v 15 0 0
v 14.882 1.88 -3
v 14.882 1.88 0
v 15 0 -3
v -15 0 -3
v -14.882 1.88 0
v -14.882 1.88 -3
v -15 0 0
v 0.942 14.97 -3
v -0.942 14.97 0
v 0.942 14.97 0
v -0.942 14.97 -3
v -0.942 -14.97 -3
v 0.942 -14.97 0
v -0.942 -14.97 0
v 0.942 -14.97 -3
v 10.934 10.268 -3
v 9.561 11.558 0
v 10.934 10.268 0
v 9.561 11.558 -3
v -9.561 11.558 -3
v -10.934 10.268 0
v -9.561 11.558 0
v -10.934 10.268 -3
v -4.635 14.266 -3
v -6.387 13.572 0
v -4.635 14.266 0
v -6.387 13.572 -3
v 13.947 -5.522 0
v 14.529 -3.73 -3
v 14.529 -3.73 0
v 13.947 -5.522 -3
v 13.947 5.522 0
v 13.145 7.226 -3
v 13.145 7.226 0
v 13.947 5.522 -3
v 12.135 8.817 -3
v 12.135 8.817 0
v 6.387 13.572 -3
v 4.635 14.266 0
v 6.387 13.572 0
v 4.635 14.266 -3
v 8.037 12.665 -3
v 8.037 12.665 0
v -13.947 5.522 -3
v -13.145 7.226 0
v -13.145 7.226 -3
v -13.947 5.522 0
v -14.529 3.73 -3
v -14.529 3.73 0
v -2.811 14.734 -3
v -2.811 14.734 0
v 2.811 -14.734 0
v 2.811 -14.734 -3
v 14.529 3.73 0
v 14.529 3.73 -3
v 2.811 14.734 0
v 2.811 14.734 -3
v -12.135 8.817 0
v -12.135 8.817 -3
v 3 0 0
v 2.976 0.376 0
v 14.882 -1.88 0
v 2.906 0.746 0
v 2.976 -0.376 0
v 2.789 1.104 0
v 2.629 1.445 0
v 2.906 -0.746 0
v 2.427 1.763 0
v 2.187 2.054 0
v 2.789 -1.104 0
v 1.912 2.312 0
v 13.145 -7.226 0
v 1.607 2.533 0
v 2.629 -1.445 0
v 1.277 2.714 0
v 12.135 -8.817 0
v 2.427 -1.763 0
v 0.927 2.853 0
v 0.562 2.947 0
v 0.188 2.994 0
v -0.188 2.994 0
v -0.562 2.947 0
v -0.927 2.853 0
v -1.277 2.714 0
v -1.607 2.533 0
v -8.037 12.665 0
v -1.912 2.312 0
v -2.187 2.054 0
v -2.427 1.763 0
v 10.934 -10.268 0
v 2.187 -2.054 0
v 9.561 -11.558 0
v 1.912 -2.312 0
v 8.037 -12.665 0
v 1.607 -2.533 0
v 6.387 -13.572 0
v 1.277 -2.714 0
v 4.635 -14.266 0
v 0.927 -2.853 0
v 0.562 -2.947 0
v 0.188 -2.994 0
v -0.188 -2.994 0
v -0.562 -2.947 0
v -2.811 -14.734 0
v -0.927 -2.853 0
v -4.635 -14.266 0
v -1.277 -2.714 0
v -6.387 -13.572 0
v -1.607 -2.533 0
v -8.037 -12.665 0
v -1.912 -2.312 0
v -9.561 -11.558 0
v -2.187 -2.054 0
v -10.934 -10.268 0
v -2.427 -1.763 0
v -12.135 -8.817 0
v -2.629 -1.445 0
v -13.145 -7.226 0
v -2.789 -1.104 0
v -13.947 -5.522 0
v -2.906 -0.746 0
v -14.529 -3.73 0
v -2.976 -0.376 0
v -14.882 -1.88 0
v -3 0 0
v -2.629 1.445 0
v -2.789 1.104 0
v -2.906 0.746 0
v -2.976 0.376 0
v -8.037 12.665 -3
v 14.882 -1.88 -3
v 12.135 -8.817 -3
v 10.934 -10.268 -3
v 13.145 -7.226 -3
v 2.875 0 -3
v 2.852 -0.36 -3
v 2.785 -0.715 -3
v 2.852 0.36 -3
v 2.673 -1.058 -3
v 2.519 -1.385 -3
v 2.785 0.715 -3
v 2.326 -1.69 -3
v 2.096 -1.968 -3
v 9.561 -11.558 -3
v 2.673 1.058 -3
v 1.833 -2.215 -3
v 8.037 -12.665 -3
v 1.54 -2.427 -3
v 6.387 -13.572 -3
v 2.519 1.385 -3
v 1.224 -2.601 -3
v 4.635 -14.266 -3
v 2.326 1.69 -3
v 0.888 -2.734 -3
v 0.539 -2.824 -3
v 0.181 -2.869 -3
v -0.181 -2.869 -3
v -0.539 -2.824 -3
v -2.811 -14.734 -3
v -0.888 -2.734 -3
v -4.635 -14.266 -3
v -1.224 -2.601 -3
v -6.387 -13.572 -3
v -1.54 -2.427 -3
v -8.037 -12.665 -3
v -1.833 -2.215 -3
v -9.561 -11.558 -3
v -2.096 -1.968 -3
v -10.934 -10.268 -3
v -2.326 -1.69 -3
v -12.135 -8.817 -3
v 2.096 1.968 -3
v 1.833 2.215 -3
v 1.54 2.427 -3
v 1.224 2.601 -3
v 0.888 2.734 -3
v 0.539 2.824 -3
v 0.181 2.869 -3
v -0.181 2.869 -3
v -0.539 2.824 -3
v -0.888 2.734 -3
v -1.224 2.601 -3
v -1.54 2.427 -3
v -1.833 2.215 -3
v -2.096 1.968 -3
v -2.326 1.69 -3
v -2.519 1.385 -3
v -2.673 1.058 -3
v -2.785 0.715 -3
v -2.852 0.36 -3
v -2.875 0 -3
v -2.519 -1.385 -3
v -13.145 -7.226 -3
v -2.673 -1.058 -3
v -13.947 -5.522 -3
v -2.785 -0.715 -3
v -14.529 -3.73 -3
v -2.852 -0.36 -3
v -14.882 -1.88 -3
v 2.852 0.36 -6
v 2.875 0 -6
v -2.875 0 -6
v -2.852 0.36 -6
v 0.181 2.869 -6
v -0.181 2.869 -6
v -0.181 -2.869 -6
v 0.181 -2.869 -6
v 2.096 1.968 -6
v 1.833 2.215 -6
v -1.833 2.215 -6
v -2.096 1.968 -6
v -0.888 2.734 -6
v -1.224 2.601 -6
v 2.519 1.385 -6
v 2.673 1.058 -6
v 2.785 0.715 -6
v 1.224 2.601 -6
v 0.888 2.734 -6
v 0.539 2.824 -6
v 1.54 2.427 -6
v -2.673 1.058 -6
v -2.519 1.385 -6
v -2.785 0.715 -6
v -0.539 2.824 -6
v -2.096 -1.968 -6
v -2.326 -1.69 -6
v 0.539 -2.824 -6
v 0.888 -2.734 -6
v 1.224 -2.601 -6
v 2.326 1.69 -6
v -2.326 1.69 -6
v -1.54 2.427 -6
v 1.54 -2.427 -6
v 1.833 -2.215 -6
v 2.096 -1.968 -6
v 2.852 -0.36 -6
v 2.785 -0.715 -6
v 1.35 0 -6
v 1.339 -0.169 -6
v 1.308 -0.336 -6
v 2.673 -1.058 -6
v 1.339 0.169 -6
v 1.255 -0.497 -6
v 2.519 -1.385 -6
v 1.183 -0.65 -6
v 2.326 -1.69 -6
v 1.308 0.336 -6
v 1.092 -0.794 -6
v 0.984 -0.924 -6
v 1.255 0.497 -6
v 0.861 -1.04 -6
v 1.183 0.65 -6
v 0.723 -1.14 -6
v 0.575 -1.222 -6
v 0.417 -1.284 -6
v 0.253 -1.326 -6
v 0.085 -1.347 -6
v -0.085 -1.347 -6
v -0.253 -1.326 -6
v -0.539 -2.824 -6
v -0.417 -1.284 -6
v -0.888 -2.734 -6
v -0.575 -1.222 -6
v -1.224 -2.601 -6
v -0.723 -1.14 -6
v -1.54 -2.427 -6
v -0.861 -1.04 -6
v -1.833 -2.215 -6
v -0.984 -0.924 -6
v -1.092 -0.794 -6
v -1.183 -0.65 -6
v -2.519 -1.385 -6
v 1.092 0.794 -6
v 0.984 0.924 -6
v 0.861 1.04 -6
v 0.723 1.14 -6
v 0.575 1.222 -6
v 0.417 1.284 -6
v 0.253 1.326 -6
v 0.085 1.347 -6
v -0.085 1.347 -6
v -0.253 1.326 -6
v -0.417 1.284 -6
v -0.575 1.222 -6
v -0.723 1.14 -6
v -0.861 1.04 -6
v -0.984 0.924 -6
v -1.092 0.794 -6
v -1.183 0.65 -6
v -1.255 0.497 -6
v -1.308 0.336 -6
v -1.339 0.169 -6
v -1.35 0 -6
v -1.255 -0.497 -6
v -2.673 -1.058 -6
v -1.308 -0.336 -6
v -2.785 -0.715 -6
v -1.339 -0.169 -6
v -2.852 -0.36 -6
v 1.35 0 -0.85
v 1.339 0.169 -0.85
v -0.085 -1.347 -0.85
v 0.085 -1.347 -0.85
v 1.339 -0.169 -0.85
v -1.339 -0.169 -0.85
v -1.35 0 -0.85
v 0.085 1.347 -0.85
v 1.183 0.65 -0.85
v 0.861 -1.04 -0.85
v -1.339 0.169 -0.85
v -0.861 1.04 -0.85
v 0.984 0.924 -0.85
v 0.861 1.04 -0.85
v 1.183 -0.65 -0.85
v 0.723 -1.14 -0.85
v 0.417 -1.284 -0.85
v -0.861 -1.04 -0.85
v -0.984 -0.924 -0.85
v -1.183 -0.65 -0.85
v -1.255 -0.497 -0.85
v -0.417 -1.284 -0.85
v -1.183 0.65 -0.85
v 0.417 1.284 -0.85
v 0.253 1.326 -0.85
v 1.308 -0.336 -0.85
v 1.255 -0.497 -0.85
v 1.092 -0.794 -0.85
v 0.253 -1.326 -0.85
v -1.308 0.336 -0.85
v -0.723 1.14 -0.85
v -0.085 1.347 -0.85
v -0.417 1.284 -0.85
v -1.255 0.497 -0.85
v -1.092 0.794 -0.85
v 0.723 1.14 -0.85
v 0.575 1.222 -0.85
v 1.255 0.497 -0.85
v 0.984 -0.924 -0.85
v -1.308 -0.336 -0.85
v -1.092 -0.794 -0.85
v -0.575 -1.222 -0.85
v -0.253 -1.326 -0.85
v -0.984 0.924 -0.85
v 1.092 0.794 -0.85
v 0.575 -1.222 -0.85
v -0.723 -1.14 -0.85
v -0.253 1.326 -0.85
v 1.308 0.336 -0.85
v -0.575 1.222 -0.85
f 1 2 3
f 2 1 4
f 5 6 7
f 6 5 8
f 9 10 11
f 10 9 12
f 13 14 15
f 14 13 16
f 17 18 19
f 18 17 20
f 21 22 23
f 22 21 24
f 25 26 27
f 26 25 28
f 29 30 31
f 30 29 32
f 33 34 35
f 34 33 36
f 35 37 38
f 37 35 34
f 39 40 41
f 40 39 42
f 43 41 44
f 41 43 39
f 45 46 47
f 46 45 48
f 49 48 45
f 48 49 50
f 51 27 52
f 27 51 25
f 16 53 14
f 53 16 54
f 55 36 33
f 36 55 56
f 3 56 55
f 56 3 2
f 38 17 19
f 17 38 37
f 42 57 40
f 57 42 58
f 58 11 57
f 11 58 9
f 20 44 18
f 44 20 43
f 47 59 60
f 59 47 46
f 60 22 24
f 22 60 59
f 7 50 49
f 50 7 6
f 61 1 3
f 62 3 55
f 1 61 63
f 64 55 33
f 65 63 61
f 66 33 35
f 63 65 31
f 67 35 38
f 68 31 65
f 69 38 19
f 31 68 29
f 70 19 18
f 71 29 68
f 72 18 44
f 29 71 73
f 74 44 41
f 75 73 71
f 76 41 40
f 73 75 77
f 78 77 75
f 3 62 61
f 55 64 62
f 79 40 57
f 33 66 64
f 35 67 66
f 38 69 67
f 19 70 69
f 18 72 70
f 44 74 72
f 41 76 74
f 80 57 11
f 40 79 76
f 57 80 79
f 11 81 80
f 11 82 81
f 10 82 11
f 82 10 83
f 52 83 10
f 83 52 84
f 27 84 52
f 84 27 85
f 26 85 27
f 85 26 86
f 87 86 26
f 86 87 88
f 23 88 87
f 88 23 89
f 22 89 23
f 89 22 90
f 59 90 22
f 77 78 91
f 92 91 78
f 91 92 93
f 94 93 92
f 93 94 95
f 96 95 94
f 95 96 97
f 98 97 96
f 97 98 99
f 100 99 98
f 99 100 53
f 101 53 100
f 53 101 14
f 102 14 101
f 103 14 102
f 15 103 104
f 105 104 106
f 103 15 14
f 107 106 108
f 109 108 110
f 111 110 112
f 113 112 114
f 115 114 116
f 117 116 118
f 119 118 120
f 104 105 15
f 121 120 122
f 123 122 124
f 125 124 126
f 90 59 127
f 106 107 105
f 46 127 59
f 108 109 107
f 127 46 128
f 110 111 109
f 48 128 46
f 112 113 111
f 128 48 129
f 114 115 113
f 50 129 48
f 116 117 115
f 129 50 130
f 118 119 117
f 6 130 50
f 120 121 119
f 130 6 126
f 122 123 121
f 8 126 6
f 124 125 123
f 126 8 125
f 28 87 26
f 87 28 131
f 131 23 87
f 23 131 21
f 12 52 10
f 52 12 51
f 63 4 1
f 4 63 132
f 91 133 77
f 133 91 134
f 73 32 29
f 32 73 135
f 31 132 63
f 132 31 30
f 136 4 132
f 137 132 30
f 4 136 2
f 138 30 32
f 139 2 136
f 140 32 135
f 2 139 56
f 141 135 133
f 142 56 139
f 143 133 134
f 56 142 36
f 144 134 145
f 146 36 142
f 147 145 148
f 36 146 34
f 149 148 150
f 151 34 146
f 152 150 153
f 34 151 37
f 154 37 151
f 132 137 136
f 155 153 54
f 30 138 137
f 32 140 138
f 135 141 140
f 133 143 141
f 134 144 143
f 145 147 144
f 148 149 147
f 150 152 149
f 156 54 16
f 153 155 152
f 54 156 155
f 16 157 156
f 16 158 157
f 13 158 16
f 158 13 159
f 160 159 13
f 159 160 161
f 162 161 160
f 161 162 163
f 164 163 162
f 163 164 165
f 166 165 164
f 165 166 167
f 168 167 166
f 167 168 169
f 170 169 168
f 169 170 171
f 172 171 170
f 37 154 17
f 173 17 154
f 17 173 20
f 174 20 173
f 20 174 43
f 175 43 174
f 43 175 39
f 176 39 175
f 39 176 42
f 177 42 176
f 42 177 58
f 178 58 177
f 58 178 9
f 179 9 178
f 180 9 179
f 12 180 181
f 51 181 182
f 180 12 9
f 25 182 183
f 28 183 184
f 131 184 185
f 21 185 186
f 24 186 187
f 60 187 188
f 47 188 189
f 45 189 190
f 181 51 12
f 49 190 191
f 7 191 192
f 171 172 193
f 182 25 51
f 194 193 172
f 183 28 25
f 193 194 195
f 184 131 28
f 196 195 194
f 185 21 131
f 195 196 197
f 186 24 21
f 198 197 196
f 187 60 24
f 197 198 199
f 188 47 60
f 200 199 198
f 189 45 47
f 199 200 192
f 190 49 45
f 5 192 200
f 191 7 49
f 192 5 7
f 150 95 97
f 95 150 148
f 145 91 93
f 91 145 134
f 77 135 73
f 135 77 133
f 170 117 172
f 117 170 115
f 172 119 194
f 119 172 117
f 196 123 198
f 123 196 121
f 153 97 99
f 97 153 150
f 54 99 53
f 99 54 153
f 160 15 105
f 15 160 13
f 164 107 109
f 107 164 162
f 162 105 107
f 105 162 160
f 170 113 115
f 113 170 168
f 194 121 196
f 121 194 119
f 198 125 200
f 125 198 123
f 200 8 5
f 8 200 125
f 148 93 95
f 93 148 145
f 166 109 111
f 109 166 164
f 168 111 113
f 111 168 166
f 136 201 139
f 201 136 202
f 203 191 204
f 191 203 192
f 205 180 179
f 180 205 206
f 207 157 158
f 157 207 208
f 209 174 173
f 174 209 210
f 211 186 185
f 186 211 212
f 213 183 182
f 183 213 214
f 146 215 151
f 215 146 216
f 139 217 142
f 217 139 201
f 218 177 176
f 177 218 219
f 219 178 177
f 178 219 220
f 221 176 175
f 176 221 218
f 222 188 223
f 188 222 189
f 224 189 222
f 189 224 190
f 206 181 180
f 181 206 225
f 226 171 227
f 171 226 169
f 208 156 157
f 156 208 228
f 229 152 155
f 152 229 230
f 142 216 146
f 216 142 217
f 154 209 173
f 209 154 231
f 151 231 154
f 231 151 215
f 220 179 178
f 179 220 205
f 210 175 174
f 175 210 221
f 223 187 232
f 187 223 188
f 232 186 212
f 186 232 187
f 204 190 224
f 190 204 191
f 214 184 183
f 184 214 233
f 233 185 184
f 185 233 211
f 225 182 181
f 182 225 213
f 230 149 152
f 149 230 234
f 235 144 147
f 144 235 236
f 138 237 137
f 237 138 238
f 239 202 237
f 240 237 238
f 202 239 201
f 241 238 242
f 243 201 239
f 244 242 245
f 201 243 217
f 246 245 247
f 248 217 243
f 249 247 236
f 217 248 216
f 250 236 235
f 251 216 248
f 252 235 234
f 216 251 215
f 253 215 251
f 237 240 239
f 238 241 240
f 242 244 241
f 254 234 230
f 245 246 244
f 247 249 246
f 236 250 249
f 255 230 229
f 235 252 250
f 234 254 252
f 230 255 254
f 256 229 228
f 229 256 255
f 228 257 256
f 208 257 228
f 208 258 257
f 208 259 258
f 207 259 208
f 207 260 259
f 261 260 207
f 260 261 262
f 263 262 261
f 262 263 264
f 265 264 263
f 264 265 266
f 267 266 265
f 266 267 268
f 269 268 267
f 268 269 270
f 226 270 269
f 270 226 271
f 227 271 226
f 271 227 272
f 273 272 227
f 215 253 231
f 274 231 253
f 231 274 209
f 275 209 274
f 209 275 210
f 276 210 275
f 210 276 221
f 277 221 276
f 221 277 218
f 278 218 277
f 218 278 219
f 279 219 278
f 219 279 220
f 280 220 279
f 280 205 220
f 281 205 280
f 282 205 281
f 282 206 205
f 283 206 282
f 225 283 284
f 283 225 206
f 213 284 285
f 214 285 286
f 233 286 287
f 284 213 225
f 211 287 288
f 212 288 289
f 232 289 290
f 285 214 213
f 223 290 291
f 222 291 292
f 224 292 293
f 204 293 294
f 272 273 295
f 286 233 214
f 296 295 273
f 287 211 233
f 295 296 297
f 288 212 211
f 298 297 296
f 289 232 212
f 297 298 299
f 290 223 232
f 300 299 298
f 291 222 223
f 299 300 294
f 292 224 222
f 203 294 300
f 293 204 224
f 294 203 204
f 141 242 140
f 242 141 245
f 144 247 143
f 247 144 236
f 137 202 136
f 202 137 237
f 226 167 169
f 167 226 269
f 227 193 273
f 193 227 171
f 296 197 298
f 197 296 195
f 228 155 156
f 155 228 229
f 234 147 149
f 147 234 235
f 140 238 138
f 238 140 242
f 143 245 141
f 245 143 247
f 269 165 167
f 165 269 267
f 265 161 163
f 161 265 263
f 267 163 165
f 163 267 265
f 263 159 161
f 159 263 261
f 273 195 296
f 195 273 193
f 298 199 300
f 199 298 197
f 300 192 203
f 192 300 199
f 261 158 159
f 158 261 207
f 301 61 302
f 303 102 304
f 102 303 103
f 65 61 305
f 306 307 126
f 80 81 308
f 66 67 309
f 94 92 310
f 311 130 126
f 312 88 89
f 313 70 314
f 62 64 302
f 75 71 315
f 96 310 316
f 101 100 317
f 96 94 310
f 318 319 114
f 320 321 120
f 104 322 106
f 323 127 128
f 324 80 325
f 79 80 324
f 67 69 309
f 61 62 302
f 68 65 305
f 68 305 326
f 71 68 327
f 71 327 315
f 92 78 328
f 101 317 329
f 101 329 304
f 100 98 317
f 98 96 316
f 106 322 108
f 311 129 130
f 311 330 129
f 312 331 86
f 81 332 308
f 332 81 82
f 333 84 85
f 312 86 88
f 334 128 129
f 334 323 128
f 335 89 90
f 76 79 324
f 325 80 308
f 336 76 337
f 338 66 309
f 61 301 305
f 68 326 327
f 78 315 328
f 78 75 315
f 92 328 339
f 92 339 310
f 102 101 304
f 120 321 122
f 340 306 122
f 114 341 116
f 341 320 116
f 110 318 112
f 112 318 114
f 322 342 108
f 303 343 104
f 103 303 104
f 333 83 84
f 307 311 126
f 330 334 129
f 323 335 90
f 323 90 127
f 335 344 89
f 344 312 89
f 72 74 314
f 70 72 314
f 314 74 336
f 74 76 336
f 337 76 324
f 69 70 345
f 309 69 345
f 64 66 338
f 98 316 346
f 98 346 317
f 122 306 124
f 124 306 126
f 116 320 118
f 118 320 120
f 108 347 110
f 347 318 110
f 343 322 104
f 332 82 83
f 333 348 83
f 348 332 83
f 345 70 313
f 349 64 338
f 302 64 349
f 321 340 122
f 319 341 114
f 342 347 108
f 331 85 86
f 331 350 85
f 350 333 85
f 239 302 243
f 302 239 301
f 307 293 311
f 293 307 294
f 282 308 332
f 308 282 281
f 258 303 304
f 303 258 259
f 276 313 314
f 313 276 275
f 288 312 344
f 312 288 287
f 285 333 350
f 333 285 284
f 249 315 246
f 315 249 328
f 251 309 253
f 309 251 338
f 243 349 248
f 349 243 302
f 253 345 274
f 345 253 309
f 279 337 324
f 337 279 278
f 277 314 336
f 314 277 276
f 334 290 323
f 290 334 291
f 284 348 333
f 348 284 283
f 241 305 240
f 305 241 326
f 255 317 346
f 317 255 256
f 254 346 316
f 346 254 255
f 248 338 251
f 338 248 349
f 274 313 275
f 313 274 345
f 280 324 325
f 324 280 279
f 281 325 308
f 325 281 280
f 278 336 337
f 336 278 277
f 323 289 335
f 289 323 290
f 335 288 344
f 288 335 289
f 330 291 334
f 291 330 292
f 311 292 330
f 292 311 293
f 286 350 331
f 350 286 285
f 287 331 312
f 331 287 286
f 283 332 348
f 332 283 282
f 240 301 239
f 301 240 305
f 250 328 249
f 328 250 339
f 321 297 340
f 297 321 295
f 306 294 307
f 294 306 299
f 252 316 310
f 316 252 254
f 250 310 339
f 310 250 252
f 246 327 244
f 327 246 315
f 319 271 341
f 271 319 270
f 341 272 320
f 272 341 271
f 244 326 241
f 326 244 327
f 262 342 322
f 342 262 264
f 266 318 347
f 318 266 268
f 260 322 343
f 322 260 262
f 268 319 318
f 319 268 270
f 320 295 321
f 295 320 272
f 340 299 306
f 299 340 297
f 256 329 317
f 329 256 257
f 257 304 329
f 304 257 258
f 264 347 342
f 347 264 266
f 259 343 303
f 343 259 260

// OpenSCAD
$fn = 50;


difference() {
	union() {
		translate(v = [0, 0, -3.0000000000]) {
			cylinder(h = 3, r = 15.0000000000);
		}
		translate(v = [0, 0, -6.0000000000]) {
			cylinder(h = 6, r = 2.8750000000);
		}
	}
	union() {
		translate(v = [0, 0, 0]) {
			rotate(a = [0, 0, 0]) {
				difference() {
					union() {
						translate(v = [0, 0, -6.0000000000]) {
							cylinder(h = 6, r = 1.0000000000);
						}
						translate(v = [0, 0, -0.8500000000]) {
							cylinder(h = 0.8500000000, r1 = 1.3500000000, r2 = 3.0000000000);
						}
						translate(v = [0, 0, -6.0000000000]) {
							cylinder(h = 6, r = 1.3500000000);
						}
						translate(v = [0, 0, -6.0000000000]) {
							cylinder(h = 6, r = 1.0000000000);
						}
					}
					union();
				}
			}
		}
	}
}
